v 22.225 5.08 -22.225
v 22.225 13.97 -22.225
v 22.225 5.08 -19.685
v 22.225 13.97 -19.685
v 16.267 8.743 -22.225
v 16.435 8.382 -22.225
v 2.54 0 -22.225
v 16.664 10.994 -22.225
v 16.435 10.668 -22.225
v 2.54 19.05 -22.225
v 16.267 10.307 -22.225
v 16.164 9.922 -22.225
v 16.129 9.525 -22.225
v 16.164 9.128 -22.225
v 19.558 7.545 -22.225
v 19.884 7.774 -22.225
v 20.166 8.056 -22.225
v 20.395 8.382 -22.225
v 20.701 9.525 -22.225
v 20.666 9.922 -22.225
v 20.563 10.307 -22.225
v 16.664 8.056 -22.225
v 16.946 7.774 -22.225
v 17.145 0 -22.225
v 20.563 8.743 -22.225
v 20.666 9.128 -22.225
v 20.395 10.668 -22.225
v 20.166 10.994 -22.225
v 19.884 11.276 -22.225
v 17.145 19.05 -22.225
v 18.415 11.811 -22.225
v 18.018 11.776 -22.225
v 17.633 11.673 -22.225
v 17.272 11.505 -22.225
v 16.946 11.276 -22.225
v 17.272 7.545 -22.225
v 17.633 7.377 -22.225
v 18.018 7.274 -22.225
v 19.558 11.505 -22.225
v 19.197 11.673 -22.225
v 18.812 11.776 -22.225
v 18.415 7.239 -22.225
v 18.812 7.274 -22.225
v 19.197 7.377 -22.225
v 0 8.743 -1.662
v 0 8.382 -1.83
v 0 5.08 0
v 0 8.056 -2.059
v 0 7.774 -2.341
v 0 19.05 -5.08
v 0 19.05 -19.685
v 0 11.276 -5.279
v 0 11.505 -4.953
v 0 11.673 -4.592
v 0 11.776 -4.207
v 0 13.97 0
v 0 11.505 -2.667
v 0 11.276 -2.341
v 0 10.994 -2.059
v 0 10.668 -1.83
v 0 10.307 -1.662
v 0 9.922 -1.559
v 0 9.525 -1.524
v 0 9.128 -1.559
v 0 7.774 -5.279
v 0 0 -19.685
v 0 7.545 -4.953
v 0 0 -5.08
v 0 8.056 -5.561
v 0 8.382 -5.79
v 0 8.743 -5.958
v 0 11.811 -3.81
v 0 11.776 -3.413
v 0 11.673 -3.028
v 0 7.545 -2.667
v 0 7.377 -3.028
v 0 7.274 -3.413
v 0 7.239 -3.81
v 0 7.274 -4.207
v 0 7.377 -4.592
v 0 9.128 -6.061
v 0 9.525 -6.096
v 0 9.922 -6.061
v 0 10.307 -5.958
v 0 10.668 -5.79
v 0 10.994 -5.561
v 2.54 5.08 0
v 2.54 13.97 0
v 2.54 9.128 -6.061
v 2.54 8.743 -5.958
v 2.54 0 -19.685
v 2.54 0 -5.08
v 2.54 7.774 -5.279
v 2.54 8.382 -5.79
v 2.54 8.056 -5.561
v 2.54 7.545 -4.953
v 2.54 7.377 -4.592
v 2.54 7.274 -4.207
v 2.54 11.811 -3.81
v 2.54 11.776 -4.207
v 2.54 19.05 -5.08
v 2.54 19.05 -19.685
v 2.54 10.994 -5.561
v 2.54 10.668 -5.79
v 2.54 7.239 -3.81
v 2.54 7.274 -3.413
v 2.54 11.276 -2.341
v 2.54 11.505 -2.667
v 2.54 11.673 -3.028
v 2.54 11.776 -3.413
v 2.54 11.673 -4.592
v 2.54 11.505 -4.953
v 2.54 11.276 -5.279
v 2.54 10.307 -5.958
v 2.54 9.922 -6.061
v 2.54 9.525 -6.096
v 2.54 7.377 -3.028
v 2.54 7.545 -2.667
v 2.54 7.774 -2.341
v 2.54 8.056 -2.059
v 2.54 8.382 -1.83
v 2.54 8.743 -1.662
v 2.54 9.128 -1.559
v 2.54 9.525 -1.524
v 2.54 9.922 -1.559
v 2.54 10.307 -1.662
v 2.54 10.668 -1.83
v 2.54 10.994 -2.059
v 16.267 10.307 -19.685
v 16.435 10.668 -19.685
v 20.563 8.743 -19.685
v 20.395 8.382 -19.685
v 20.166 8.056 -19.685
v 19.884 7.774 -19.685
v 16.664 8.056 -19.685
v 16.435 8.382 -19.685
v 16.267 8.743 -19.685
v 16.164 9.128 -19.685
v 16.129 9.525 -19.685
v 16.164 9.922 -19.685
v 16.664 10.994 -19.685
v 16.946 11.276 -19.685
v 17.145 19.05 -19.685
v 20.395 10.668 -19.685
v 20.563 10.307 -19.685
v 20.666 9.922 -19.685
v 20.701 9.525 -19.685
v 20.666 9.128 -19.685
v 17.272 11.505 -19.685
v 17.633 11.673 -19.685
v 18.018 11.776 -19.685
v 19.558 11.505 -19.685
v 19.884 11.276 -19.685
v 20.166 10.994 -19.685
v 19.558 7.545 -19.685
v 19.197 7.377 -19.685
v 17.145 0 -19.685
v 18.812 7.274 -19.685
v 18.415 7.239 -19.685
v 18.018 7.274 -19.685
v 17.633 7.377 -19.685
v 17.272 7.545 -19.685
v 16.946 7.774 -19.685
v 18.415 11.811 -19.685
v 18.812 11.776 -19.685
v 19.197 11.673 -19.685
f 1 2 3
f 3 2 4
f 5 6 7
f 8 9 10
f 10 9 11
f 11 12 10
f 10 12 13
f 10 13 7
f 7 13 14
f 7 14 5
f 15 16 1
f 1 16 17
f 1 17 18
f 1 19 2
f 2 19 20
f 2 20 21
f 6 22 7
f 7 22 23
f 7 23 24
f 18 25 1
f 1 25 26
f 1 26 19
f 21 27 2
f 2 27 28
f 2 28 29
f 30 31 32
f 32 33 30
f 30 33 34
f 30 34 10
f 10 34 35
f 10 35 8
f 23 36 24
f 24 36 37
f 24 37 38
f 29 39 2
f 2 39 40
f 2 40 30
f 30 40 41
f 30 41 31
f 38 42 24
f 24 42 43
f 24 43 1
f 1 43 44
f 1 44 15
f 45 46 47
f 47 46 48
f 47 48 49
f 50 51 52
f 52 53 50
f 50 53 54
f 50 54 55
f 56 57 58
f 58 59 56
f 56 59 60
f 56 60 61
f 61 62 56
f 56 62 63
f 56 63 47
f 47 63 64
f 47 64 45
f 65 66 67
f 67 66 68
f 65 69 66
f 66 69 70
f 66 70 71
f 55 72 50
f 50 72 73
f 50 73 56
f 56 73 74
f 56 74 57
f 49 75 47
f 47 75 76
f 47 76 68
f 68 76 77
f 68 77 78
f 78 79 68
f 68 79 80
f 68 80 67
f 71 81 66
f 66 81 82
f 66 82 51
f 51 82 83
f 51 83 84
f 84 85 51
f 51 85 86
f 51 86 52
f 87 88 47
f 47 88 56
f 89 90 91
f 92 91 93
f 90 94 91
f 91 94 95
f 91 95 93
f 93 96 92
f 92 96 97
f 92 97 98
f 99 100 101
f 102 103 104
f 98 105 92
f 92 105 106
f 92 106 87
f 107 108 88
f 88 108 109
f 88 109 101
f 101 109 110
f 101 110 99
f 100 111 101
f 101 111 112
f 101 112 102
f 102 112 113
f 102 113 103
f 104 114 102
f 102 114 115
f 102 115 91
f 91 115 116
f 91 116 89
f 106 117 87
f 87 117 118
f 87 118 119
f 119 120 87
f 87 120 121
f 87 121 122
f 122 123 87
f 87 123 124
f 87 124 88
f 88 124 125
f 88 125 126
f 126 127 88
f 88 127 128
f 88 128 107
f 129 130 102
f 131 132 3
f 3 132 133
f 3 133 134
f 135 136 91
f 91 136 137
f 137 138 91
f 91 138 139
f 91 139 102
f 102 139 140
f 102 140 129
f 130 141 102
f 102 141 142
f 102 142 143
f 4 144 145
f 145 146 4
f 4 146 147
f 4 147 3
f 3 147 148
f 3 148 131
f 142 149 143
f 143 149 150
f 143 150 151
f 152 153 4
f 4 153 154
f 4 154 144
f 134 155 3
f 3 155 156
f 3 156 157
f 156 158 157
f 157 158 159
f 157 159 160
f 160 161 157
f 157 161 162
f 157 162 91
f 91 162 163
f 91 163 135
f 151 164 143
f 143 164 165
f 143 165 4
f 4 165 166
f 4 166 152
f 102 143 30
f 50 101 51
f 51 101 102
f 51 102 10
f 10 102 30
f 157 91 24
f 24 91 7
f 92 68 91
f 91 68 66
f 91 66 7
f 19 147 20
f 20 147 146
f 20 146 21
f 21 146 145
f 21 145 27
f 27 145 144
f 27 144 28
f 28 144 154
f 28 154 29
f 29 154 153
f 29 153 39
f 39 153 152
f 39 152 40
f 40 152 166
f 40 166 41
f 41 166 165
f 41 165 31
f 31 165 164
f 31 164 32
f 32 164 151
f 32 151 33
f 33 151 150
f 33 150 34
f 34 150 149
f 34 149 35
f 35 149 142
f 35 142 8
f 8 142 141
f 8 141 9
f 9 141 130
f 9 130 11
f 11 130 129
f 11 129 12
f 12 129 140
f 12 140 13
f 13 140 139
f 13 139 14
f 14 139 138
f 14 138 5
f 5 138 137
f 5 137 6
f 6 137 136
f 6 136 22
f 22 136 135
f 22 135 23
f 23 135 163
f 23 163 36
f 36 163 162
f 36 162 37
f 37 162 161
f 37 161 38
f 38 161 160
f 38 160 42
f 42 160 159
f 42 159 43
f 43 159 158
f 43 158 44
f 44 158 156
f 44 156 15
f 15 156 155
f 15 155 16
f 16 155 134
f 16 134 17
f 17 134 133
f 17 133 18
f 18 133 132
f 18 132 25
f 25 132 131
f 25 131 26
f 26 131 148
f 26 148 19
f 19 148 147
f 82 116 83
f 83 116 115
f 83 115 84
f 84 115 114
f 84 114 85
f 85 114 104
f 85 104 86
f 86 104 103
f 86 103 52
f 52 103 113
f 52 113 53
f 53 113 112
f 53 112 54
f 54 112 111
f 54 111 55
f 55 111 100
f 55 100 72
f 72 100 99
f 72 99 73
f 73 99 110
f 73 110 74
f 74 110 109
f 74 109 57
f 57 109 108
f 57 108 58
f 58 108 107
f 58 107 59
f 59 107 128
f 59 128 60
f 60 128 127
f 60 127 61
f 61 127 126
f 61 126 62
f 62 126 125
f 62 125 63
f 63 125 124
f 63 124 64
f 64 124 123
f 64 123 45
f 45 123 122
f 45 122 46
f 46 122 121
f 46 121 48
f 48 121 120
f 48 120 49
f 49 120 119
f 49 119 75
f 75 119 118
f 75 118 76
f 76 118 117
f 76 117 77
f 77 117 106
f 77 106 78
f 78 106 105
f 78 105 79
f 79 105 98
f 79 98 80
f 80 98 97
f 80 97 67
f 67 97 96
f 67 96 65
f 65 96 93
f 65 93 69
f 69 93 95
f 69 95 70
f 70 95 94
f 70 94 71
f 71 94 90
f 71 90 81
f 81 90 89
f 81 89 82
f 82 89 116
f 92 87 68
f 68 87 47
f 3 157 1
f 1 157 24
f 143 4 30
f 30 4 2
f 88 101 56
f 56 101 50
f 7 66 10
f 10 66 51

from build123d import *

# Parameters (mm, degrees)
BOSS_EXTRUDE1_DEPTH = 19.05
SKETCH2_R           = 2.286
CUT_EXTRUDE1_DEPTH  = 2.54
SKETCH3_R           = 2.286
CUT_EXTRUDE2_DEPTH  = 2.54
CHAMFER1_SIZE       = 5.08
CHAMFER2_SIZE       = 2.54


with BuildPart() as part:
    # Sketch1 → Boss-Extrude1 (new body)
    with BuildSketch(Plane(origin=(0, 0, 0), x_dir=(1, 0, 0), z_dir=(0, 1, 0))):
        Polygon((22.225, 22.225), (22.225, 19.685), (2.54, 19.685), (2.54, 0), (0, 0), (0, 22.225), align=None)
    extrude(amount=BOSS_EXTRUDE1_DEPTH)

    # Sketch2 → Cut-Extrude1 (cut)
    with BuildSketch(Plane.XY.offset(-19.685)):
        with Locations((18.415, 9.525)):
            Circle(SKETCH2_R)
    extrude(amount=-CUT_EXTRUDE1_DEPTH, mode=Mode.SUBTRACT)

    # Sketch3 → Cut-Extrude2 (cut)
    with BuildSketch(Plane(origin=(2.54, 0, 0), x_dir=(0, 0, -1), z_dir=(1, 0, 0))):
        with Locations((3.81, 9.525)):
            Circle(SKETCH3_R)
    extrude(amount=-CUT_EXTRUDE2_DEPTH, mode=Mode.SUBTRACT)

    # Chamfer1
    chamfer1_edges = [part.edges().sort_by_distance(p)[0] for p in [
        (22.225, 0, -20.955),
        (1.27, 19.05, 0),
        (22.225, 19.05, -20.955),
        (1.27, 0, 0),
    ]]
    chamfer(chamfer1_edges, length=CHAMFER1_SIZE)

    # Chamfer2
    chamfer2_edges = [part.edges().sort_by_distance(p)[0] for p in [
        (0, 9.525, -22.225),
    ]]
    chamfer(chamfer2_edges, length=CHAMFER2_SIZE)


solid = part.part
